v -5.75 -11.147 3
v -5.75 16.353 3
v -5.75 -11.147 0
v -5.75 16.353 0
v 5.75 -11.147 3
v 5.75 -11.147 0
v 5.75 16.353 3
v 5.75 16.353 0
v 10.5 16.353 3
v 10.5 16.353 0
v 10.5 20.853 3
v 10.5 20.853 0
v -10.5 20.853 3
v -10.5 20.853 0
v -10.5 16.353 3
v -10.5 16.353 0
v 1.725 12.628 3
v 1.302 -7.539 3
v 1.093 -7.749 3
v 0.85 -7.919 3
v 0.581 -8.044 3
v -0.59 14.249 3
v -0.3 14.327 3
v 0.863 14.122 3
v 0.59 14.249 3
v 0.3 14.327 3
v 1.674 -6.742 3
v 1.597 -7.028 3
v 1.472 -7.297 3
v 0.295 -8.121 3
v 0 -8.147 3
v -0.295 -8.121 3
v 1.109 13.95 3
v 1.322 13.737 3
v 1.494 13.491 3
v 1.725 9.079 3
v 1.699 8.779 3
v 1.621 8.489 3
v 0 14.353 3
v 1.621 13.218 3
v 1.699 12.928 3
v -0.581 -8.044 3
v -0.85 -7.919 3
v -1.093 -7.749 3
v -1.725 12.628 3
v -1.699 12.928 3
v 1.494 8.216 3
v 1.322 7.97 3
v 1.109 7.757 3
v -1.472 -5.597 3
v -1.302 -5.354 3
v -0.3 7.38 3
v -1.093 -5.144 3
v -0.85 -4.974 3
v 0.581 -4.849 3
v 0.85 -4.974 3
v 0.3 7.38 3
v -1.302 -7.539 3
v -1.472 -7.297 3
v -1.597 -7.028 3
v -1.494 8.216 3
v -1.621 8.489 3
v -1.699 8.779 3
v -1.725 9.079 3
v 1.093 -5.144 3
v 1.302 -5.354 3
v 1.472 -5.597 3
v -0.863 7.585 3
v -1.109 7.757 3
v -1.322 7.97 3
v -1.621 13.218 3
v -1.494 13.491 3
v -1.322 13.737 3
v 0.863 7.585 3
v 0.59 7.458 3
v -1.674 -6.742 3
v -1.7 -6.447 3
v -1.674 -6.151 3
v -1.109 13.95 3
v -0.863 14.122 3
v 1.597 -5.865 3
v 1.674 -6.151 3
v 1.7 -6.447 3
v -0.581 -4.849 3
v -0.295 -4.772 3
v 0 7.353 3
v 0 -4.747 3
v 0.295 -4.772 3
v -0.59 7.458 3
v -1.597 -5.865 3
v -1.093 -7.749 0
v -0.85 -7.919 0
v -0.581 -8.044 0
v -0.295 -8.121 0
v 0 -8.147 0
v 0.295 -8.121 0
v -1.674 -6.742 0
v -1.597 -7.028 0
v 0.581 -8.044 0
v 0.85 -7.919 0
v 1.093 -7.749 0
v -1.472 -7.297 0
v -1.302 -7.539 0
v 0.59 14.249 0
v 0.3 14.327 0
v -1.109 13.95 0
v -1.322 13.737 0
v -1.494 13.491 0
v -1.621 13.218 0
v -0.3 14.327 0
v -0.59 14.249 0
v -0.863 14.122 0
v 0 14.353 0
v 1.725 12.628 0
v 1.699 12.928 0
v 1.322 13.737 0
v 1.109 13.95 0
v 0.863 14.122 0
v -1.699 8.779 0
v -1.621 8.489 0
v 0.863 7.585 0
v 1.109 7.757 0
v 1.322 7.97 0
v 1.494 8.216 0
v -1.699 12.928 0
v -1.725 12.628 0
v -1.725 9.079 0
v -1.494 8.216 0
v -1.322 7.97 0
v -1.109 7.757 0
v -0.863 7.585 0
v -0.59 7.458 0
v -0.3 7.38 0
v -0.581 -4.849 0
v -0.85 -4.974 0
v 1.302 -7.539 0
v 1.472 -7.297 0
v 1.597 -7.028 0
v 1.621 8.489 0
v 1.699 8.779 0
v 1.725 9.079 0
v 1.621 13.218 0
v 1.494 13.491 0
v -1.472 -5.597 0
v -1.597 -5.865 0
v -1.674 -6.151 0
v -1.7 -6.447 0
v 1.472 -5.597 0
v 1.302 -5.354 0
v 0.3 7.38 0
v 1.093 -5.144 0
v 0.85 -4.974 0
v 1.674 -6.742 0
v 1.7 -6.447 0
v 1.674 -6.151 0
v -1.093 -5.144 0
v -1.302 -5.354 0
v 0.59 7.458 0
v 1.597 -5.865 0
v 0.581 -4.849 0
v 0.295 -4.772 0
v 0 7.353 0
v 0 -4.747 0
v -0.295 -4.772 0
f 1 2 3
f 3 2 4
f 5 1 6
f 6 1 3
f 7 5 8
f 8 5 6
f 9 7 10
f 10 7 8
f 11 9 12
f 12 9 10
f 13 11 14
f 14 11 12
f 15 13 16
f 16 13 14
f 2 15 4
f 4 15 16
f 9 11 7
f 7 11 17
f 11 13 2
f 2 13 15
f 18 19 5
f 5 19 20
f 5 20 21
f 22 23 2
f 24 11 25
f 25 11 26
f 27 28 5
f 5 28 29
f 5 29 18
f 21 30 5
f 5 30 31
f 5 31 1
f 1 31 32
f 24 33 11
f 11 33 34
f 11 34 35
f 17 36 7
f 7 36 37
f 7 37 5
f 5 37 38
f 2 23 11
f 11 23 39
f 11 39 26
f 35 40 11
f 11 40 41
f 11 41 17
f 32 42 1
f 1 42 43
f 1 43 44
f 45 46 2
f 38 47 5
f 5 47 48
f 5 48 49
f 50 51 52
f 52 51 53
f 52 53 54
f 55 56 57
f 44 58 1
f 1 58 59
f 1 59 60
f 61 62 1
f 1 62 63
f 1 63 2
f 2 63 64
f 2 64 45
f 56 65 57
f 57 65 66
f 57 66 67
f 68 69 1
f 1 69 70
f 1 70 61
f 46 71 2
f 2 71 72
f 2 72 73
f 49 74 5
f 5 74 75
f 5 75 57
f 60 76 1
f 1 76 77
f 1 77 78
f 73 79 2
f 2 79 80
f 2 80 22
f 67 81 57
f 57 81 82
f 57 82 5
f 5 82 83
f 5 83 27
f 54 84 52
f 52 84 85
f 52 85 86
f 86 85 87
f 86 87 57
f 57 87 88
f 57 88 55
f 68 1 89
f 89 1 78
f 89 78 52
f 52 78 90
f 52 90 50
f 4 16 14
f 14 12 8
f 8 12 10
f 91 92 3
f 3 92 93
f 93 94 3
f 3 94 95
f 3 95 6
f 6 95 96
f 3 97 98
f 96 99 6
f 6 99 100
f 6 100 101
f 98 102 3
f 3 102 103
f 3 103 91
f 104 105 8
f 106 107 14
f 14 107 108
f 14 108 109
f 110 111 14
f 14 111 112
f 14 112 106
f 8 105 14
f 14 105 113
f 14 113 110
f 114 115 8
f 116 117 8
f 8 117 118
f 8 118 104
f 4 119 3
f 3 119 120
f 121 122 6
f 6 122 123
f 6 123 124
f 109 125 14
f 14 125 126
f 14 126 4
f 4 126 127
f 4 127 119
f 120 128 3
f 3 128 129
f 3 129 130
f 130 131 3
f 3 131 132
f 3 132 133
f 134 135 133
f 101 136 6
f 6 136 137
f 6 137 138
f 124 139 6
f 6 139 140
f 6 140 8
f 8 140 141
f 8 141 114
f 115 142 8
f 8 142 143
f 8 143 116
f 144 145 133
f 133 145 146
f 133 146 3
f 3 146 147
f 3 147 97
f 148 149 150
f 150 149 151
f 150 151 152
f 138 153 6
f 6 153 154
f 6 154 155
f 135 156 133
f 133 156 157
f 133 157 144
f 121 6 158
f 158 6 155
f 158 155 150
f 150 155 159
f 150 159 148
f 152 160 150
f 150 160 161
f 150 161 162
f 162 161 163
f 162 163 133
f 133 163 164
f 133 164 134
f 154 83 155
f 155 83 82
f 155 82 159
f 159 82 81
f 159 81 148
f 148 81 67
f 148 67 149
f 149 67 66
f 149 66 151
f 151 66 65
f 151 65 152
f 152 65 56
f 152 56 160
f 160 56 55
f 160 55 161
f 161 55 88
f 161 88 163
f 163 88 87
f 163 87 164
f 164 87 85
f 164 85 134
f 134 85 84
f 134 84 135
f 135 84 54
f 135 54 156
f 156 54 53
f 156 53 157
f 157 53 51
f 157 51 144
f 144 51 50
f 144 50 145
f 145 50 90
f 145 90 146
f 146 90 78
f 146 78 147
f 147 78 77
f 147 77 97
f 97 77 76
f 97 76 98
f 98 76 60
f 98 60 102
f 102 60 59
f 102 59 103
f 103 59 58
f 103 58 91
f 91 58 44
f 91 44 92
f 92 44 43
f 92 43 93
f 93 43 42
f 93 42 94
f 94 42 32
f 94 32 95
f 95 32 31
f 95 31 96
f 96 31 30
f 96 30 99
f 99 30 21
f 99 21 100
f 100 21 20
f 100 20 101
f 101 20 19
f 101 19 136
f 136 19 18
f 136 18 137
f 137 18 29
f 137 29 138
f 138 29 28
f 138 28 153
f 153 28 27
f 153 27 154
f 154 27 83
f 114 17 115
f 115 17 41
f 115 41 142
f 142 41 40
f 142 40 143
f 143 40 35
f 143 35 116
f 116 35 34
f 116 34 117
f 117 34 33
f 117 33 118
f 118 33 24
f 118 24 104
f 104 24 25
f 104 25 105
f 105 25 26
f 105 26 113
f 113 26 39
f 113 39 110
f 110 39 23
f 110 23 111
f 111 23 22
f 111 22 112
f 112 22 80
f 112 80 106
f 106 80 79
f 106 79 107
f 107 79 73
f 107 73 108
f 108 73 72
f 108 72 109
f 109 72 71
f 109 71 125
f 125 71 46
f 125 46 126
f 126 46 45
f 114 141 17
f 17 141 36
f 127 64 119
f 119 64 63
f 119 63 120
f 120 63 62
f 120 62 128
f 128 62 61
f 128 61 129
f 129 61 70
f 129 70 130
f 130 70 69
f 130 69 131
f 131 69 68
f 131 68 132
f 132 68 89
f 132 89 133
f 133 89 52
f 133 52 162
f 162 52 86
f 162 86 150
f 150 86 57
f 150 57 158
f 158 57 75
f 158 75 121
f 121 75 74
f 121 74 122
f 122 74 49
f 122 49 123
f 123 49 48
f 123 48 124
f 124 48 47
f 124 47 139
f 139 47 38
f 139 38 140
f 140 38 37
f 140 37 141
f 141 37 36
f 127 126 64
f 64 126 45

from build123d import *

# Parameters (mm, degrees)
BOSS_EXTRUDE1_DEPTH = 3
SKETCH2_R           = 1.7
CUT_EXTRUDE1_DEPTH  = 3


with BuildPart() as part:
    # Sketch1 → Boss-Extrude1 (new body)
    with BuildSketch(Plane.XY):
        Polygon((10.5, 20.853495779), (-10.5, 20.853495779), (-10.5, 16.353495779), (-5.75, 16.353495779), (-5.75, -11.146504221), (5.75, -11.146504221), (5.75, 16.353495779), (10.5, 16.353495779), align=None)
    extrude(amount=BOSS_EXTRUDE1_DEPTH)

    # Sketch2 → Cut-Extrude1 (cut)
    with BuildSketch(Plane.XY.offset(3)):
        with Locations((0, -6.446504221)):
            Circle(SKETCH2_R)
        with BuildLine():
            Line((1.725328859, 12.62816692), (1.725328859, 9.078824638))
            ThreePointArc((1.725328859, 9.078824638), (0, 7.353495779), (-1.725328859, 9.078824638))
            Line((-1.725328859, 9.078824638), (-1.725328859, 12.62816692))
            ThreePointArc((-1.725328859, 12.62816692), (0, 14.353495779), (1.725328859, 12.62816692))
        make_face()
    extrude(amount=-CUT_EXTRUDE1_DEPTH, mode=Mode.SUBTRACT)


solid = part.part
